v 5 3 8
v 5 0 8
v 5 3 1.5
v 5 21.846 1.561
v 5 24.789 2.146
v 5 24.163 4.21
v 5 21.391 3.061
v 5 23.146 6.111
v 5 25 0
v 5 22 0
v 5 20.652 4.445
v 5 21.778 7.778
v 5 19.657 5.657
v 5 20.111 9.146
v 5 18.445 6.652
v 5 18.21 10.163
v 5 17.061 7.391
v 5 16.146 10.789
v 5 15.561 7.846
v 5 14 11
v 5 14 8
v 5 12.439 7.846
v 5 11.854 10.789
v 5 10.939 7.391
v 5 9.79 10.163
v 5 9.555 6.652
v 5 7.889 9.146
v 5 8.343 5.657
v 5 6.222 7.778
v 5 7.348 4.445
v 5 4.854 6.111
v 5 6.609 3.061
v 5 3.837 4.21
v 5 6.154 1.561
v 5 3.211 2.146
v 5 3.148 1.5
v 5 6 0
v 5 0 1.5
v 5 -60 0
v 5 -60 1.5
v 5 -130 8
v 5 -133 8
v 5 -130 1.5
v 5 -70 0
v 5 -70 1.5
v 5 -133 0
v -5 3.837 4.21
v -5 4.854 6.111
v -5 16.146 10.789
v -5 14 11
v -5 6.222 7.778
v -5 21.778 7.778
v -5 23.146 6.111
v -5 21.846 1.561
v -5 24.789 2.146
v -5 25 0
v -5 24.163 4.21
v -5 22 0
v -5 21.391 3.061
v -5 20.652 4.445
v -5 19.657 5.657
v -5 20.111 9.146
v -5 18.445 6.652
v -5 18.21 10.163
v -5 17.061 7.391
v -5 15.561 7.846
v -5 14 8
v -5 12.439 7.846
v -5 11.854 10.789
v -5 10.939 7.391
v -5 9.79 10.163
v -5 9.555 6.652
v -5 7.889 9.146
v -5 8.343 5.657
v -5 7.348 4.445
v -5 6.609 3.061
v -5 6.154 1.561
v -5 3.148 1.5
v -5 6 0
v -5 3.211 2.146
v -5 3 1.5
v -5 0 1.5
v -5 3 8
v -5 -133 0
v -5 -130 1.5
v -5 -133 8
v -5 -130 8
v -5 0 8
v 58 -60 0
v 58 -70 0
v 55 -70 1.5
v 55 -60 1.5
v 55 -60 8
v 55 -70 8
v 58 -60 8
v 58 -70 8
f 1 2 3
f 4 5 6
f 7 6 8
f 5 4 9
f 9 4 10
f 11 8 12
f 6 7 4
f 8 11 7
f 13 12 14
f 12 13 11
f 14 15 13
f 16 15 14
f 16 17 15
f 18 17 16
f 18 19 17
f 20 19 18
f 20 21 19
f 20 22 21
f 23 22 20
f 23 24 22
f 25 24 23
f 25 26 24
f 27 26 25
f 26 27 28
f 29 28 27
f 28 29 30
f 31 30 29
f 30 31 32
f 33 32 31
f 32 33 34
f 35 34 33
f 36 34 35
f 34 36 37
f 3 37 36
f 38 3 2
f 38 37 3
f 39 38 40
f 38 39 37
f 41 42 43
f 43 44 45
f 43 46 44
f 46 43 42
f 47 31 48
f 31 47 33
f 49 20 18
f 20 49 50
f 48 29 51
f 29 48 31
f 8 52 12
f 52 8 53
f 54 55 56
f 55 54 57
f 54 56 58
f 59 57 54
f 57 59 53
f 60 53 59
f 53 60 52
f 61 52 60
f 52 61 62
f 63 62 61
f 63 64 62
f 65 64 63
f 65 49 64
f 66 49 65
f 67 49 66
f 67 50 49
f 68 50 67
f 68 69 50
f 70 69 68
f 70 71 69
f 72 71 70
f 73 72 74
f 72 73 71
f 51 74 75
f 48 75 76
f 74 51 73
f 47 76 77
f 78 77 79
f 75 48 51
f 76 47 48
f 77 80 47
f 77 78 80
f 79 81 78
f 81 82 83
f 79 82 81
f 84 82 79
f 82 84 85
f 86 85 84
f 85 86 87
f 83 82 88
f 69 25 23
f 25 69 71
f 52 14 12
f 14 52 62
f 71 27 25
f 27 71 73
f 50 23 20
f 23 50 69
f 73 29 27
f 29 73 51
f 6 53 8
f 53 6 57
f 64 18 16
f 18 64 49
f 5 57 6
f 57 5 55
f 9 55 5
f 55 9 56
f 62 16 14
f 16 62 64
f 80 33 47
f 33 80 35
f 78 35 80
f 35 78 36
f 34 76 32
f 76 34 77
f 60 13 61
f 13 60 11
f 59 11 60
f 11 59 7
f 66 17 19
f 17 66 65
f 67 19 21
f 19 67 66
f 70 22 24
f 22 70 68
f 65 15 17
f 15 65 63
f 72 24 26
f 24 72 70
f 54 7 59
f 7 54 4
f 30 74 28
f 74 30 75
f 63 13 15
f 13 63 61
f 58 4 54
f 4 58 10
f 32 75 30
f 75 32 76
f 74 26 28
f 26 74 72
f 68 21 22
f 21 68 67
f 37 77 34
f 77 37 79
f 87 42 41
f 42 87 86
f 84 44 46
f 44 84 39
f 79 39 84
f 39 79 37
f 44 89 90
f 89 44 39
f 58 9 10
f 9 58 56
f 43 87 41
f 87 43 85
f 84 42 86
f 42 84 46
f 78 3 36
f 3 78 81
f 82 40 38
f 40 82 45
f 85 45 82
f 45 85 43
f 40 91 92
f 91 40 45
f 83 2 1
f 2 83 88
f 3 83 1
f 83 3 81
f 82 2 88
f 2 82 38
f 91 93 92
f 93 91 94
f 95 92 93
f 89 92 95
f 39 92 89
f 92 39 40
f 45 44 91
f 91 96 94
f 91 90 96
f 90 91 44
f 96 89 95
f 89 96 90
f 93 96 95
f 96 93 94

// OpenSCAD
coast_width = 23; coast_depth = 14; coast_height = 2;
mavis_width = 23.2; mavis_depth = 13.4; mavis_height = 2;
ds2_width = 24.5; ds2_depth = 13; ds2_height = 4.1;

holder_distance_sides_bottom = 3;
holder_extension_sides_up = 0.3;
holder_extension_sides_frontback = 0.5;
holder_creep_sides_up = 0.8;
holder_creep_sides_bottom = 0.5;
holder_extension_clamps_depth = 0.3;

ground_height = 0.15;

pillar_radius = 0.55;
ground_pillar_radius = 0.8;
pillar_faces = 32;
ground_holder_radius = 1.1;

module ground_cylinder(offset, width) {
   translate([0, offset, 0]) {
       rotate([0, 90, 0]) {
           cylinder(r=ground_pillar_radius, h=width, center=true, $fn=pillar_faces);
       }
   }
}

module center_bracket(synth_width, synth_depth, angle) {
    bracket_x = synth_width / 2 - holder_creep_sides_bottom;
    bracket_y = -holder_extension_sides_frontback;
    bracket_z = -holder_extension_sides_up;
    bracket_width = holder_creep_sides_bottom * 2;
    bracket_depth = synth_depth + 2 * holder_extension_sides_frontback;
    bracket_height = holder_extension_sides_up + holder_creep_sides_up;
    
    translate([bracket_x, bracket_y, bracket_z]) {
        cube([bracket_width, bracket_depth, bracket_height]);
    }
}

scale(10) difference() {
	union () {
		// ring
		difference() {
			translate([0, 1.4, 0]) {
			   rotate([0, 90, 0]) {
			       cylinder(r=ground_holder_radius, h=holder_creep_sides_bottom * 2, center=true, $fn=pillar_faces);
			   }
			}
			ground_cylinder(1.4, coast_width - 8);
		}
		// ground square long with corners
		translate([-holder_creep_sides_bottom, 0, 0]) {
			translate([0, -ds2_depth - holder_extension_clamps_depth, 0]) {
				cube([holder_creep_sides_bottom * 2, holder_extension_clamps_depth, holder_creep_sides_up]);
			}
			translate([0, -ds2_depth, 0]) {
				cube([holder_creep_sides_bottom * 2, ds2_depth + 0.4, ground_height]);
			}
			cube([holder_creep_sides_bottom * 2, holder_extension_clamps_depth, holder_creep_sides_up]);
		}
		// side square with corners
		translate([0, -(ds2_depth / 2) - holder_creep_sides_bottom, 0]) {
			extension_length = 5.5;
			cube([extension_length, holder_creep_sides_bottom * 2, ground_height]);
			translate([extension_length, 0, 0]) {
				cube([holder_extension_clamps_depth, holder_creep_sides_bottom * 2, holder_creep_sides_up]);
			}
		}
	}
	translate([-100, -100, -100]) {
		cube([200, 200, 100]);
	}
}
